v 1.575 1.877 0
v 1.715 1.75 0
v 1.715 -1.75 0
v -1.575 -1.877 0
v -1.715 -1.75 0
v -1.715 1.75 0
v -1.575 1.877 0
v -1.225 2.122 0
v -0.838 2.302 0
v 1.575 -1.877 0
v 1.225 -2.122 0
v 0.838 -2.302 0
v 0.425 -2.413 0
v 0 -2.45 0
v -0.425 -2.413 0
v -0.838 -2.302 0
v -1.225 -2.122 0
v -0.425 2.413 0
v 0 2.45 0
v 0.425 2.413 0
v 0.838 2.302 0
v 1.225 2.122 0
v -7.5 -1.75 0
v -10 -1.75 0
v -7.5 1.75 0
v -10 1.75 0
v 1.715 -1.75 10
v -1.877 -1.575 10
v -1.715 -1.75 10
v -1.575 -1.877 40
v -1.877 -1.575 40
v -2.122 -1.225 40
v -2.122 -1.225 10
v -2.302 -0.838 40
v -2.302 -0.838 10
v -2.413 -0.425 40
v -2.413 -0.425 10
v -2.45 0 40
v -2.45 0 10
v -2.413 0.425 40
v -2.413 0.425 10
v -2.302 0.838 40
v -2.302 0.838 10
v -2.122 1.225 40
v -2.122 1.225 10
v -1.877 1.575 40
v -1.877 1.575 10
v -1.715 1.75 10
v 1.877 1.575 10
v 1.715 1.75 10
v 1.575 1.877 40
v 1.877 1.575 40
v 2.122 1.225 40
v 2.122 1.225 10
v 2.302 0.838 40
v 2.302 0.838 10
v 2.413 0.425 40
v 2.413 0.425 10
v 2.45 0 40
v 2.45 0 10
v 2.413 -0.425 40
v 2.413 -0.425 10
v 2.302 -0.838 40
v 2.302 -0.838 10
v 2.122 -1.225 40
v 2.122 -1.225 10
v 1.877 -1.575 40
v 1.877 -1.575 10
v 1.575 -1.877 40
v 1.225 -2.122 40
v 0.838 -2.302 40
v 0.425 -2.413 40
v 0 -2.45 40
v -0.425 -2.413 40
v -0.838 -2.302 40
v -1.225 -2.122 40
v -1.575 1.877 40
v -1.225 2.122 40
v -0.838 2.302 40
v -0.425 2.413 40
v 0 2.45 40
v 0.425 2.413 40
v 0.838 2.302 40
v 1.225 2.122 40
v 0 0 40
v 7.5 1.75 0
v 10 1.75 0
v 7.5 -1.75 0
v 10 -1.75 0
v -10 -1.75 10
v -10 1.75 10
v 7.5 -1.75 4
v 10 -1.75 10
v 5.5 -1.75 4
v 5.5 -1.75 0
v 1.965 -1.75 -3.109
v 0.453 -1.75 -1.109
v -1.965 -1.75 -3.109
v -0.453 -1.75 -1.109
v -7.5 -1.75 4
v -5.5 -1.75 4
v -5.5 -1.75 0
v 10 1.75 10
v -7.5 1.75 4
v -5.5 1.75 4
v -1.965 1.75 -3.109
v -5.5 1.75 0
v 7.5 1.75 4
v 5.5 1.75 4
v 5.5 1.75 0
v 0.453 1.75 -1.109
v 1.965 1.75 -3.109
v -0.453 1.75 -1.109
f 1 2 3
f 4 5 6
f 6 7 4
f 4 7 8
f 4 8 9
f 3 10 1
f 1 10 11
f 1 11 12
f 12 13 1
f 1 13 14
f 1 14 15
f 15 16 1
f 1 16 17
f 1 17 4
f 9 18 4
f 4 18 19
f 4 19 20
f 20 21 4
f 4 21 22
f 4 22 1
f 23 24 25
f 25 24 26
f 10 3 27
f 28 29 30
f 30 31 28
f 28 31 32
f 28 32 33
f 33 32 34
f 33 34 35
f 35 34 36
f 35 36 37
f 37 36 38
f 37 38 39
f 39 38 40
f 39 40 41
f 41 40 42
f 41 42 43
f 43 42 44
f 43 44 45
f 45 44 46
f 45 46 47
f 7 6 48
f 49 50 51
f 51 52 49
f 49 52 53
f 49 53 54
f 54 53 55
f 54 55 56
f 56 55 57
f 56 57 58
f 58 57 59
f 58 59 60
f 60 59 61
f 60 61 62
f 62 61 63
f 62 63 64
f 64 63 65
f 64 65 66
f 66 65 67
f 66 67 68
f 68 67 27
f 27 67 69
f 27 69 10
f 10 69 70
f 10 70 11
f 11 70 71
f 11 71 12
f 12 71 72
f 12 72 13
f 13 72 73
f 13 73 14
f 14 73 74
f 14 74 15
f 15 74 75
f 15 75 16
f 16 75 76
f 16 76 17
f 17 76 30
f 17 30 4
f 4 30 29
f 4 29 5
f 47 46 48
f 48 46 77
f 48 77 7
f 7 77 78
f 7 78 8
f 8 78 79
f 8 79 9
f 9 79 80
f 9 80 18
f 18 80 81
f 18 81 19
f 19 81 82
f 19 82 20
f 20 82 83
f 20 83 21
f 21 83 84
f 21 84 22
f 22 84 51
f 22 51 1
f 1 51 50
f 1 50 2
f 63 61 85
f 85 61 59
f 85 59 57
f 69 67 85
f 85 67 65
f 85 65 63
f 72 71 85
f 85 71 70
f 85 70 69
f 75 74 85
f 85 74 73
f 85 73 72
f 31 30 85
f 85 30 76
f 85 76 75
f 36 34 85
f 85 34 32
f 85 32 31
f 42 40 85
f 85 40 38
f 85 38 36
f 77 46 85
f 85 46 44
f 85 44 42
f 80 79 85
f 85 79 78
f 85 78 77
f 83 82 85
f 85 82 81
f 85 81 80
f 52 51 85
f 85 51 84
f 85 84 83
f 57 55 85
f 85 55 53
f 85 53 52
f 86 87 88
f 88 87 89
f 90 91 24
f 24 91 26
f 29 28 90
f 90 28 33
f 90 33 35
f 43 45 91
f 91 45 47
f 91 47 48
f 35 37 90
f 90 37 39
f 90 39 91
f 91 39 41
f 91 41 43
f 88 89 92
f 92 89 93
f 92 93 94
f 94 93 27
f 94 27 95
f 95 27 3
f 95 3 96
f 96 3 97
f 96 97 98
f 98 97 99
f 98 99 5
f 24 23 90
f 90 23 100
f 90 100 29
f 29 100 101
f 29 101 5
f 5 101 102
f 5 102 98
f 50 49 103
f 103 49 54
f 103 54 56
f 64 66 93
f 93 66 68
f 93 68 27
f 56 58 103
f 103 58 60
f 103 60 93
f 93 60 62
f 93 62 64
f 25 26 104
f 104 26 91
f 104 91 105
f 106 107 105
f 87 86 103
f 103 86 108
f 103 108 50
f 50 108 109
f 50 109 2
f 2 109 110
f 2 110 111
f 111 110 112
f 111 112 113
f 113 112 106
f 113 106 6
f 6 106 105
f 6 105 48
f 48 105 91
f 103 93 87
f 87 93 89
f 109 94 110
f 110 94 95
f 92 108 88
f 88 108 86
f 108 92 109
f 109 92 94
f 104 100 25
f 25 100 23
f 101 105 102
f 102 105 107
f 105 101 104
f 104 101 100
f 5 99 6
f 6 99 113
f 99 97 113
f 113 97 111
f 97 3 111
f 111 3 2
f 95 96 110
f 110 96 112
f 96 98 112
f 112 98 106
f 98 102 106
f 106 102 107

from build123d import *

# Parameters (mm, degrees)
SKETCH2_R           = 2.45
BOSS_EXTRUDE1_DEPTH = 40
SKETCH3_W           = 20
SKETCH3_H           = 3.5
BOSS_EXTRUDE2_DEPTH = 10
SKETCH4_W           = 2
SKETCH4_H           = 3.5
CUT_EXTRUDE1_DEPTH  = 4
BOSS_EXTRUDE3_START = -1.75
BOSS_EXTRUDE3_DEPTH = 3.5


with BuildPart() as part:
    # Sketch2 → Boss-Extrude1 (new body)
    with BuildSketch(Plane.XY):
        Circle(SKETCH2_R)
    extrude(amount=BOSS_EXTRUDE1_DEPTH)

    # Sketch3 → Boss-Extrude2 (add)
    with BuildSketch(Plane(origin=(0, 0, 0), x_dir=(-1, 0, 0), z_dir=(0, 0, -1))):
        Rectangle(SKETCH3_W, SKETCH3_H)
    extrude(amount=-BOSS_EXTRUDE2_DEPTH)

    # Sketch4 → Cut-Extrude1 (cut)
    with BuildSketch(Plane(origin=(0, 0, 0), x_dir=(-1, 0, 0), z_dir=(0, 0, -1))):
        with Locations((-6.5, 0)):
            Rectangle(SKETCH4_W, SKETCH4_H)
        with Locations((6.5, 0)):
            Rectangle(SKETCH4_W, SKETCH4_H)
    extrude(amount=-CUT_EXTRUDE1_DEPTH, mode=Mode.SUBTRACT)

    # Sketch5 → Boss-Extrude3 (add)
    with BuildSketch(Plane(origin=(0, 0, 0), x_dir=(1, 0, 0), z_dir=(0, 1, 0)).offset(BOSS_EXTRUDE3_START)):
        Polygon((-1.71464282, 0), (-0.45349465, 1.109249464), (0.45349465, 1.109249464), (1.71464282, 0), (5.5, 0), (1.964975284, 3.109249464), (-1.964975284, 3.109249464), (-5.5, 0), align=None)
    extrude(amount=BOSS_EXTRUDE3_DEPTH)


solid = part.part
